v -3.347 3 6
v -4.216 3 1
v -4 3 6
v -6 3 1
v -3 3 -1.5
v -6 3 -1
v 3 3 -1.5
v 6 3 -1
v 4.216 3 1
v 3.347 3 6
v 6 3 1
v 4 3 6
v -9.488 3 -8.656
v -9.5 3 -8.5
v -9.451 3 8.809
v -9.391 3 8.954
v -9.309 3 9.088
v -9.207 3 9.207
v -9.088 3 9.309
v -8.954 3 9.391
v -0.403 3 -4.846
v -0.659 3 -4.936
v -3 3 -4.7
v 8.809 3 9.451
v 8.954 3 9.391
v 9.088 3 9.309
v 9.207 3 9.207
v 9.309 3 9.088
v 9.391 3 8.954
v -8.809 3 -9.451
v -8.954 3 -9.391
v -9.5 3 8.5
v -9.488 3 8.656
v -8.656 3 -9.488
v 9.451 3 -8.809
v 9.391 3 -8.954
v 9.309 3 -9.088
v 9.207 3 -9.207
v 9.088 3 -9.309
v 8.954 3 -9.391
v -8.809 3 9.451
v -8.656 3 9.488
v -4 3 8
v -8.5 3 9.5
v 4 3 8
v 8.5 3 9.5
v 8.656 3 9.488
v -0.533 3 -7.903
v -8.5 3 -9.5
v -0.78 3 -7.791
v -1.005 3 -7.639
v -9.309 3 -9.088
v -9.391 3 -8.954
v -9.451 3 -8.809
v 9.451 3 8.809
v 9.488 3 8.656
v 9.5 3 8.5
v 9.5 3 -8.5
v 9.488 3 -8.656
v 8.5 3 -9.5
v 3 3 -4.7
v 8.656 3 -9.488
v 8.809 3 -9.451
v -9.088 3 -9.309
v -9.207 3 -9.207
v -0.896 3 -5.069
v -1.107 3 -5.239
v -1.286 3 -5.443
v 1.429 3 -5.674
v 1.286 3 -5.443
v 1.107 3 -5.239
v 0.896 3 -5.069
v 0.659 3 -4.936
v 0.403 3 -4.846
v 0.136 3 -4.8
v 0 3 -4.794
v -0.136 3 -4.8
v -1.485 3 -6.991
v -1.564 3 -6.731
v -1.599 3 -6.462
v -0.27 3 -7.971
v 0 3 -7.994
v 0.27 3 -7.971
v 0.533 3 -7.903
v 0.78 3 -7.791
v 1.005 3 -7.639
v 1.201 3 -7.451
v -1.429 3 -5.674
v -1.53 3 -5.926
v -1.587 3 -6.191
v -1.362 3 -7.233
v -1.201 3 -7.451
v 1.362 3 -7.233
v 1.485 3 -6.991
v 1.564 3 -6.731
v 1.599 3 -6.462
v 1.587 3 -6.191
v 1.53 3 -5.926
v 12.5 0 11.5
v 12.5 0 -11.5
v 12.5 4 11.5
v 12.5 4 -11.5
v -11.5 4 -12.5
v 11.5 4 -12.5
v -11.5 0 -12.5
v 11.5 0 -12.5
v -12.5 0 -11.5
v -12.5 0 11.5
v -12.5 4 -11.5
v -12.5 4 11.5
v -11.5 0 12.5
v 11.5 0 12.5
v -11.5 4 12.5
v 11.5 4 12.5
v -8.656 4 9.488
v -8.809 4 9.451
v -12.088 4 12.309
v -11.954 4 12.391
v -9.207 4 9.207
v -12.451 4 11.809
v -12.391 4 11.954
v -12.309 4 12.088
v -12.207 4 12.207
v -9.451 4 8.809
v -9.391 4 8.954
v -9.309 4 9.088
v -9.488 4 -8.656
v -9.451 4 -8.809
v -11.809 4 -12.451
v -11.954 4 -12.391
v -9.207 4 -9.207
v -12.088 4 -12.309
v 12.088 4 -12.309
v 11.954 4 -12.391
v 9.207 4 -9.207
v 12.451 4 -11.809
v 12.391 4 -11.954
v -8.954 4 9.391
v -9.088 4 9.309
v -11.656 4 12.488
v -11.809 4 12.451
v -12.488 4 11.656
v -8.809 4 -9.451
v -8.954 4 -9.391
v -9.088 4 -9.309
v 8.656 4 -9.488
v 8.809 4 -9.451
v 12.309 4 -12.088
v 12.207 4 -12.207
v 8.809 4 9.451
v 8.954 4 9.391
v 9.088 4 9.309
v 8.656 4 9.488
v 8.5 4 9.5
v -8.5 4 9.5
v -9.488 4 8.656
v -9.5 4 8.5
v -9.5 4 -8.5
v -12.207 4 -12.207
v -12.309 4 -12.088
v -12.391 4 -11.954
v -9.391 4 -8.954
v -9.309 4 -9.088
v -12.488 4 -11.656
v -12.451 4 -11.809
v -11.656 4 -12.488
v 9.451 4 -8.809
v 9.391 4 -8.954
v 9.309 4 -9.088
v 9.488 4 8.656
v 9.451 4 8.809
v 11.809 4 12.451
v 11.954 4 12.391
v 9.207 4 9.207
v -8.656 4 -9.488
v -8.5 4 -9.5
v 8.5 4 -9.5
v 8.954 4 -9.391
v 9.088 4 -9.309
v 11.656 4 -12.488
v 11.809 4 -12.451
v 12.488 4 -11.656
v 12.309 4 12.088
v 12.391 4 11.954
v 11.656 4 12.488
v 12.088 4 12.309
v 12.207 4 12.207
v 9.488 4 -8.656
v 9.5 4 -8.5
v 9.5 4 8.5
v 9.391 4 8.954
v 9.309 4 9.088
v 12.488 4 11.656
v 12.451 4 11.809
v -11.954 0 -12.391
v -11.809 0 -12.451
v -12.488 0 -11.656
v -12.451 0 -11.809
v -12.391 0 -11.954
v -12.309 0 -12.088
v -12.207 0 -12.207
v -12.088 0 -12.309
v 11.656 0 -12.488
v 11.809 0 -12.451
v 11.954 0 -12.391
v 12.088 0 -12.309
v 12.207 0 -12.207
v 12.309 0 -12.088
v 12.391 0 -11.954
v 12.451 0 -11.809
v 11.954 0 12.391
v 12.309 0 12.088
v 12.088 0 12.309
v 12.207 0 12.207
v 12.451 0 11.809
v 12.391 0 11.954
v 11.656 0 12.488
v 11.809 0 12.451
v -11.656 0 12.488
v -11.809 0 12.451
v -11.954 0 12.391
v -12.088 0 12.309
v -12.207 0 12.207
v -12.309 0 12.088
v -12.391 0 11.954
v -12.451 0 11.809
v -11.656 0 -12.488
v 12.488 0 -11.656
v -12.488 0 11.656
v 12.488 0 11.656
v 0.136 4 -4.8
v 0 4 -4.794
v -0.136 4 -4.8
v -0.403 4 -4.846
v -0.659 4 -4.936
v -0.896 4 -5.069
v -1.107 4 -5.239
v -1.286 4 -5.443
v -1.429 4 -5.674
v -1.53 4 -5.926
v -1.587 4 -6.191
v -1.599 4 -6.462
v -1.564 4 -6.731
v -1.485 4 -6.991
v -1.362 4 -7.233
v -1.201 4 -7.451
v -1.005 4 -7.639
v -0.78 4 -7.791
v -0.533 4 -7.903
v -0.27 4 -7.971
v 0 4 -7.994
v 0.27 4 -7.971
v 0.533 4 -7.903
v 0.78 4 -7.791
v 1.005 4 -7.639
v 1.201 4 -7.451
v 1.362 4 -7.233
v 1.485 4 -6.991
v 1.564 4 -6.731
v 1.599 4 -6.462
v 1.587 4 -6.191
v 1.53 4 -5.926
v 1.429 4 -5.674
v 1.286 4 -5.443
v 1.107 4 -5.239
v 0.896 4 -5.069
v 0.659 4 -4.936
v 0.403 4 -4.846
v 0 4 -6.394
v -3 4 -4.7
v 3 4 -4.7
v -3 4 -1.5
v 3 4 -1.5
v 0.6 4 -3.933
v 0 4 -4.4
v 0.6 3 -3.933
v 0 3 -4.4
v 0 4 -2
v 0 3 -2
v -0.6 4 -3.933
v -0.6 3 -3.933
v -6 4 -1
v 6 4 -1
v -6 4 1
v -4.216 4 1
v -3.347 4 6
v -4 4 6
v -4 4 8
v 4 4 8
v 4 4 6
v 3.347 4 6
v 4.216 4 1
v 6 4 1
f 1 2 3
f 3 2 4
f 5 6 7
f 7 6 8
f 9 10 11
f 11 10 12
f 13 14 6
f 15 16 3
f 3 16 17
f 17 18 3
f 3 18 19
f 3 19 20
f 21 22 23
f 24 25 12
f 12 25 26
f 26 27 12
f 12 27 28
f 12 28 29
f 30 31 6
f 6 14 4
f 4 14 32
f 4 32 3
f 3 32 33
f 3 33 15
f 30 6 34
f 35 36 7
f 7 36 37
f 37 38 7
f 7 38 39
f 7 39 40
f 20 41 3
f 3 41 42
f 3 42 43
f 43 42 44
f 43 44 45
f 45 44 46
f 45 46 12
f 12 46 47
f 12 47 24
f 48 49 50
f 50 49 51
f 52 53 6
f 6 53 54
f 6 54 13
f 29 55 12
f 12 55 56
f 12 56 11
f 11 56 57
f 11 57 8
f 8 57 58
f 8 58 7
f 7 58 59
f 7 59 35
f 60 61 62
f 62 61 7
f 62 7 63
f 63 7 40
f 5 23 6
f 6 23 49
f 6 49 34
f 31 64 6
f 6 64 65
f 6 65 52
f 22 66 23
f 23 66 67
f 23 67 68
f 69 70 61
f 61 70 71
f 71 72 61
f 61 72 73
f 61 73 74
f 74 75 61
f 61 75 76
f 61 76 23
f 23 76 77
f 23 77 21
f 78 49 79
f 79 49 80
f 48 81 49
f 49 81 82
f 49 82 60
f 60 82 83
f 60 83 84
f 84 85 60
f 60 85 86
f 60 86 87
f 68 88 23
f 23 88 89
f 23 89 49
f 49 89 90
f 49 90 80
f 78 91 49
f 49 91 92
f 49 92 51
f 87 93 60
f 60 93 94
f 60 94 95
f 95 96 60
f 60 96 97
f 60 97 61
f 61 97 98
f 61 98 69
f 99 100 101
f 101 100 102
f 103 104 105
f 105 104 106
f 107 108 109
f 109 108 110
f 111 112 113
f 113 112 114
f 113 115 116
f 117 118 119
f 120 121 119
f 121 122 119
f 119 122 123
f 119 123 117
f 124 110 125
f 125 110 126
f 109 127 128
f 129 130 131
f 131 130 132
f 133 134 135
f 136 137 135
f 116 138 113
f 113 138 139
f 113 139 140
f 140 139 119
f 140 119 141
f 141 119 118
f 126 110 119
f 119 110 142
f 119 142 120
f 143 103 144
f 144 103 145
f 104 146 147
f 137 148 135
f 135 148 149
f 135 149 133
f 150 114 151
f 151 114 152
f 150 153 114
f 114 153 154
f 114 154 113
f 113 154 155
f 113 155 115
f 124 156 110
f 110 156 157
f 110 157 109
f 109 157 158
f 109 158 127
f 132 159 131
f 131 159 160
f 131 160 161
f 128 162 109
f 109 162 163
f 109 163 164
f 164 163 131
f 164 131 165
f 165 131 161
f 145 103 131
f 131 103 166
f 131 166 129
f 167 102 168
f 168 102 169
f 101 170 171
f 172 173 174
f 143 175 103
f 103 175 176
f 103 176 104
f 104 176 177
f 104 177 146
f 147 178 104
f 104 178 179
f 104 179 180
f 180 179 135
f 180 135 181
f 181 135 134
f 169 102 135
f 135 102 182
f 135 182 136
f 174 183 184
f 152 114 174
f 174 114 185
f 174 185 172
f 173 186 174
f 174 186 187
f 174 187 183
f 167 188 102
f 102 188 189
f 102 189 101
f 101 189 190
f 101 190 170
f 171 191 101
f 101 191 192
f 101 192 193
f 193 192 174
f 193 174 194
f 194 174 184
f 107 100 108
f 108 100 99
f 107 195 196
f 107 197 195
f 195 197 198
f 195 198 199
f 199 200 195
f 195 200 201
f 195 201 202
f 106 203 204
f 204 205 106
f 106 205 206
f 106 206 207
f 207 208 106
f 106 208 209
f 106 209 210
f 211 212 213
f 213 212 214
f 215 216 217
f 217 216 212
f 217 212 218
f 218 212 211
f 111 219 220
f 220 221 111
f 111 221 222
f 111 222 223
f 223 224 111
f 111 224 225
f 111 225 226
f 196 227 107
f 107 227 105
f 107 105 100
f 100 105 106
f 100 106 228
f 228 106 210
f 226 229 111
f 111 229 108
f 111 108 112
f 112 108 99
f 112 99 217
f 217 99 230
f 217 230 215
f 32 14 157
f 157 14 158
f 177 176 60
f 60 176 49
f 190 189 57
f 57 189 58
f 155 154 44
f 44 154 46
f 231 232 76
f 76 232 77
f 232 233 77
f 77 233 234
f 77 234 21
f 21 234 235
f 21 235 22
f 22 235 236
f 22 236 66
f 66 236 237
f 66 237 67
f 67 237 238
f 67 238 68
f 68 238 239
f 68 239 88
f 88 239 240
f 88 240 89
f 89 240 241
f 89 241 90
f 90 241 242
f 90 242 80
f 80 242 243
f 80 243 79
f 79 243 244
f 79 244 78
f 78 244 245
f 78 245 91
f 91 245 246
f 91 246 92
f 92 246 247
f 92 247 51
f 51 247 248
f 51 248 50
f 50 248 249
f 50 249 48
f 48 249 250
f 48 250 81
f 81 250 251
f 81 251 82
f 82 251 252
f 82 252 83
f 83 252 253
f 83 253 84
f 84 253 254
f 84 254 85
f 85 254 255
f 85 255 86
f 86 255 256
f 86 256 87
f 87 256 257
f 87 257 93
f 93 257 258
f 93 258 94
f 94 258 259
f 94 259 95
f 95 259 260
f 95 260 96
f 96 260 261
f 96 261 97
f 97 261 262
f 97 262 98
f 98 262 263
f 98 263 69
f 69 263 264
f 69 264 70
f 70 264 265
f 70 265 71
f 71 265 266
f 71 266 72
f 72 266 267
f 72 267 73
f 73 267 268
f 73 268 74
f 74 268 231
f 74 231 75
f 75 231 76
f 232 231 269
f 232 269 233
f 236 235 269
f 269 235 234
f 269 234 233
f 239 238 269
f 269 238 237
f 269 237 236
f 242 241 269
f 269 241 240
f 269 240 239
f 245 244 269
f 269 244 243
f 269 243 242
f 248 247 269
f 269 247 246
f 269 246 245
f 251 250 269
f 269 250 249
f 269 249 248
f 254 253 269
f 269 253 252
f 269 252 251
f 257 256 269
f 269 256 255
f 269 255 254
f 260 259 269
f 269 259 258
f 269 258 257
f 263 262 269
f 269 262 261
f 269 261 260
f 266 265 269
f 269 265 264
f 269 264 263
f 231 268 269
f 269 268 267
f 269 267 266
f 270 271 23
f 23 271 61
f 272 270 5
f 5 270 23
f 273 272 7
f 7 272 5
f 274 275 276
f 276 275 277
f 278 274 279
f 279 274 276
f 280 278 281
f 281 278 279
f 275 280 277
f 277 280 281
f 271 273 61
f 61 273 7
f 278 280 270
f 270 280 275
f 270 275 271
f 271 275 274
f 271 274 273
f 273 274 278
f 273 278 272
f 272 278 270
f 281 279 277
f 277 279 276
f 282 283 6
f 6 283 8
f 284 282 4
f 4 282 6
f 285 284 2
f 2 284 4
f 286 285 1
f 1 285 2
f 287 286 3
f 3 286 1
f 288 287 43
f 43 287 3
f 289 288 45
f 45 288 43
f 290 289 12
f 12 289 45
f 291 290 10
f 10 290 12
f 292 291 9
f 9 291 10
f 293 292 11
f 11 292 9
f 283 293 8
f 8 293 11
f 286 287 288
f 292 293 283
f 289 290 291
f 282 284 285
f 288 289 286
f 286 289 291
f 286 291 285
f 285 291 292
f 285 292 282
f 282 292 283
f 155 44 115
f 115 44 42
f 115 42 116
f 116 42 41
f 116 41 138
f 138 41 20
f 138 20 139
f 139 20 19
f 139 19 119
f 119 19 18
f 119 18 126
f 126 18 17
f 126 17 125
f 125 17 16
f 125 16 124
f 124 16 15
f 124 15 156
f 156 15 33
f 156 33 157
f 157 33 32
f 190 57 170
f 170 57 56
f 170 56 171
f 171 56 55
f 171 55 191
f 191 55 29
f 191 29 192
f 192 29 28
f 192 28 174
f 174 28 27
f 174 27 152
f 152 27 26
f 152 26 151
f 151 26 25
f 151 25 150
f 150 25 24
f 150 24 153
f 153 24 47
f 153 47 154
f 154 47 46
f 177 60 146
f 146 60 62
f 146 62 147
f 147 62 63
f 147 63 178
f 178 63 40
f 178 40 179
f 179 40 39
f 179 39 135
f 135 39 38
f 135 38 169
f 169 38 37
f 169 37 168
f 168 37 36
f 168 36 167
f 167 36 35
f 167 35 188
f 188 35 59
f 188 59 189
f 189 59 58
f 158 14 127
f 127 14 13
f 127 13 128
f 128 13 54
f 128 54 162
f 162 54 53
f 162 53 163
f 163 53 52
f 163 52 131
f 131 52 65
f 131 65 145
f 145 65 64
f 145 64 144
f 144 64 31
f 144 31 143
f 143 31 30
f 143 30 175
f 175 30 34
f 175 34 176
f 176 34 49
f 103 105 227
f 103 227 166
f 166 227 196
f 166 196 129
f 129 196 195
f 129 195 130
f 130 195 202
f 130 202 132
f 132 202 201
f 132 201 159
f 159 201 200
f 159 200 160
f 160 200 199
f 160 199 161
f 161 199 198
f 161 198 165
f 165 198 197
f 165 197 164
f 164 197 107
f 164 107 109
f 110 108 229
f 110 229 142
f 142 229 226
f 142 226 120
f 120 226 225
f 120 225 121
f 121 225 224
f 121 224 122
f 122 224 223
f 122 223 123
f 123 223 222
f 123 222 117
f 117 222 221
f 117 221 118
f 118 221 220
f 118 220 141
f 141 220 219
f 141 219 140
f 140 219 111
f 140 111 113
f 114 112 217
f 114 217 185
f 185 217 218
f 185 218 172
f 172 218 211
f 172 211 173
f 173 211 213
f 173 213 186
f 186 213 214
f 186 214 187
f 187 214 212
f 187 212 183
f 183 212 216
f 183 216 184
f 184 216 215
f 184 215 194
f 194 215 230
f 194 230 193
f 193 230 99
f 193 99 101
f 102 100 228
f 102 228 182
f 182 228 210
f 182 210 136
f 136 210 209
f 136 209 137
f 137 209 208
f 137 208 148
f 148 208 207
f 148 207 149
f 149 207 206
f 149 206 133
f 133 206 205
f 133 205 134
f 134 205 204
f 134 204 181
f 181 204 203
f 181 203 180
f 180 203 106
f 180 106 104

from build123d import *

# Parameters (mm, degrees)
SKETCH_1_W          = 25
SKETCH_1_H          = 25
EXTRUDE_1_DEPTH     = 4
SKETCH_2_W          = 19
SKETCH_2_H          = 19
CUT_EXTRUDE_1_DEPTH = 1
SKETCH_3_W          = 6
SKETCH_3_H          = 3.2
SKETCH_3_R          = 1.6
EXTRUDE_2_DEPTH     = 1
FILLET_1_R          = 1


with BuildPart() as part:
    # 草图1 → 凸台-拉伸1 (new body)
    with BuildSketch(Plane(origin=(0, 0, 0), x_dir=(1, 0, 0), z_dir=(0, 1, 0))):
        Rectangle(SKETCH_1_W, SKETCH_1_H)
    extrude(amount=EXTRUDE_1_DEPTH)

    # 草图2 → 切除-拉伸1 (cut)
    with BuildSketch(Plane(origin=(0, 4, 0), x_dir=(1, 0, 0), z_dir=(0, 1, 0))):
        Rectangle(SKETCH_2_W, SKETCH_2_H)
    extrude(amount=-CUT_EXTRUDE_1_DEPTH, mode=Mode.SUBTRACT)

    # 草图3 → 凸台-拉伸2 (add)
    # profile 1 of 3: a face of its own
    with BuildSketch(Plane(origin=(0, 3, 0), x_dir=(1, 0, 0), z_dir=(0, 1, 0))):
        Polygon((4.216148916, -1), (6, -1), (6, 1), (-6, 1), (-6, -1), (-4.216148916, -1), (-3.347471119, -6), (-4, -6), (-4, -8), (4, -8), (4, -6), (3.347471119, -6), align=None)
    # profile 2 of 3: a face of its own
    with BuildSketch(Plane(origin=(0, 3, 0), x_dir=(1, 0, 0), z_dir=(0, 1, 0))):
        with Locations((0, 3.1)):
            Rectangle(SKETCH_3_W, SKETCH_3_H)
        Polygon((-0.6, 3.933247604), (0, 4.4), (0.6, 3.933247604), (0, 2), align=None, mode=Mode.SUBTRACT)
    # profile 3 of 3: a face of its own
    with BuildSketch(Plane(origin=(0, 3, 0), x_dir=(1, 0, 0), z_dir=(0, 1, 0))):
        with Locations(Location((0, 6.394307769, 0), (0, 0, 270))):
            Circle(SKETCH_3_R)
    extrude(amount=EXTRUDE_2_DEPTH)

    # 圆角1
    fillet_1_edges = [part.edges().sort_by_distance(p)[0] for p in [
        (-9.5, 3.5, 9.5),
        (-9.5, 3.5, -9.5),
        (9.5, 3.5, -9.5),
        (9.5, 3.5, 9.5),
        (12.5, 2, 12.5),
        (-12.5, 2, 12.5),
        (-12.5, 2, -12.5),
        (12.5, 2, -12.5),
    ]]
    fillet(fillet_1_edges, radius=FILLET_1_R)


solid = part.part
